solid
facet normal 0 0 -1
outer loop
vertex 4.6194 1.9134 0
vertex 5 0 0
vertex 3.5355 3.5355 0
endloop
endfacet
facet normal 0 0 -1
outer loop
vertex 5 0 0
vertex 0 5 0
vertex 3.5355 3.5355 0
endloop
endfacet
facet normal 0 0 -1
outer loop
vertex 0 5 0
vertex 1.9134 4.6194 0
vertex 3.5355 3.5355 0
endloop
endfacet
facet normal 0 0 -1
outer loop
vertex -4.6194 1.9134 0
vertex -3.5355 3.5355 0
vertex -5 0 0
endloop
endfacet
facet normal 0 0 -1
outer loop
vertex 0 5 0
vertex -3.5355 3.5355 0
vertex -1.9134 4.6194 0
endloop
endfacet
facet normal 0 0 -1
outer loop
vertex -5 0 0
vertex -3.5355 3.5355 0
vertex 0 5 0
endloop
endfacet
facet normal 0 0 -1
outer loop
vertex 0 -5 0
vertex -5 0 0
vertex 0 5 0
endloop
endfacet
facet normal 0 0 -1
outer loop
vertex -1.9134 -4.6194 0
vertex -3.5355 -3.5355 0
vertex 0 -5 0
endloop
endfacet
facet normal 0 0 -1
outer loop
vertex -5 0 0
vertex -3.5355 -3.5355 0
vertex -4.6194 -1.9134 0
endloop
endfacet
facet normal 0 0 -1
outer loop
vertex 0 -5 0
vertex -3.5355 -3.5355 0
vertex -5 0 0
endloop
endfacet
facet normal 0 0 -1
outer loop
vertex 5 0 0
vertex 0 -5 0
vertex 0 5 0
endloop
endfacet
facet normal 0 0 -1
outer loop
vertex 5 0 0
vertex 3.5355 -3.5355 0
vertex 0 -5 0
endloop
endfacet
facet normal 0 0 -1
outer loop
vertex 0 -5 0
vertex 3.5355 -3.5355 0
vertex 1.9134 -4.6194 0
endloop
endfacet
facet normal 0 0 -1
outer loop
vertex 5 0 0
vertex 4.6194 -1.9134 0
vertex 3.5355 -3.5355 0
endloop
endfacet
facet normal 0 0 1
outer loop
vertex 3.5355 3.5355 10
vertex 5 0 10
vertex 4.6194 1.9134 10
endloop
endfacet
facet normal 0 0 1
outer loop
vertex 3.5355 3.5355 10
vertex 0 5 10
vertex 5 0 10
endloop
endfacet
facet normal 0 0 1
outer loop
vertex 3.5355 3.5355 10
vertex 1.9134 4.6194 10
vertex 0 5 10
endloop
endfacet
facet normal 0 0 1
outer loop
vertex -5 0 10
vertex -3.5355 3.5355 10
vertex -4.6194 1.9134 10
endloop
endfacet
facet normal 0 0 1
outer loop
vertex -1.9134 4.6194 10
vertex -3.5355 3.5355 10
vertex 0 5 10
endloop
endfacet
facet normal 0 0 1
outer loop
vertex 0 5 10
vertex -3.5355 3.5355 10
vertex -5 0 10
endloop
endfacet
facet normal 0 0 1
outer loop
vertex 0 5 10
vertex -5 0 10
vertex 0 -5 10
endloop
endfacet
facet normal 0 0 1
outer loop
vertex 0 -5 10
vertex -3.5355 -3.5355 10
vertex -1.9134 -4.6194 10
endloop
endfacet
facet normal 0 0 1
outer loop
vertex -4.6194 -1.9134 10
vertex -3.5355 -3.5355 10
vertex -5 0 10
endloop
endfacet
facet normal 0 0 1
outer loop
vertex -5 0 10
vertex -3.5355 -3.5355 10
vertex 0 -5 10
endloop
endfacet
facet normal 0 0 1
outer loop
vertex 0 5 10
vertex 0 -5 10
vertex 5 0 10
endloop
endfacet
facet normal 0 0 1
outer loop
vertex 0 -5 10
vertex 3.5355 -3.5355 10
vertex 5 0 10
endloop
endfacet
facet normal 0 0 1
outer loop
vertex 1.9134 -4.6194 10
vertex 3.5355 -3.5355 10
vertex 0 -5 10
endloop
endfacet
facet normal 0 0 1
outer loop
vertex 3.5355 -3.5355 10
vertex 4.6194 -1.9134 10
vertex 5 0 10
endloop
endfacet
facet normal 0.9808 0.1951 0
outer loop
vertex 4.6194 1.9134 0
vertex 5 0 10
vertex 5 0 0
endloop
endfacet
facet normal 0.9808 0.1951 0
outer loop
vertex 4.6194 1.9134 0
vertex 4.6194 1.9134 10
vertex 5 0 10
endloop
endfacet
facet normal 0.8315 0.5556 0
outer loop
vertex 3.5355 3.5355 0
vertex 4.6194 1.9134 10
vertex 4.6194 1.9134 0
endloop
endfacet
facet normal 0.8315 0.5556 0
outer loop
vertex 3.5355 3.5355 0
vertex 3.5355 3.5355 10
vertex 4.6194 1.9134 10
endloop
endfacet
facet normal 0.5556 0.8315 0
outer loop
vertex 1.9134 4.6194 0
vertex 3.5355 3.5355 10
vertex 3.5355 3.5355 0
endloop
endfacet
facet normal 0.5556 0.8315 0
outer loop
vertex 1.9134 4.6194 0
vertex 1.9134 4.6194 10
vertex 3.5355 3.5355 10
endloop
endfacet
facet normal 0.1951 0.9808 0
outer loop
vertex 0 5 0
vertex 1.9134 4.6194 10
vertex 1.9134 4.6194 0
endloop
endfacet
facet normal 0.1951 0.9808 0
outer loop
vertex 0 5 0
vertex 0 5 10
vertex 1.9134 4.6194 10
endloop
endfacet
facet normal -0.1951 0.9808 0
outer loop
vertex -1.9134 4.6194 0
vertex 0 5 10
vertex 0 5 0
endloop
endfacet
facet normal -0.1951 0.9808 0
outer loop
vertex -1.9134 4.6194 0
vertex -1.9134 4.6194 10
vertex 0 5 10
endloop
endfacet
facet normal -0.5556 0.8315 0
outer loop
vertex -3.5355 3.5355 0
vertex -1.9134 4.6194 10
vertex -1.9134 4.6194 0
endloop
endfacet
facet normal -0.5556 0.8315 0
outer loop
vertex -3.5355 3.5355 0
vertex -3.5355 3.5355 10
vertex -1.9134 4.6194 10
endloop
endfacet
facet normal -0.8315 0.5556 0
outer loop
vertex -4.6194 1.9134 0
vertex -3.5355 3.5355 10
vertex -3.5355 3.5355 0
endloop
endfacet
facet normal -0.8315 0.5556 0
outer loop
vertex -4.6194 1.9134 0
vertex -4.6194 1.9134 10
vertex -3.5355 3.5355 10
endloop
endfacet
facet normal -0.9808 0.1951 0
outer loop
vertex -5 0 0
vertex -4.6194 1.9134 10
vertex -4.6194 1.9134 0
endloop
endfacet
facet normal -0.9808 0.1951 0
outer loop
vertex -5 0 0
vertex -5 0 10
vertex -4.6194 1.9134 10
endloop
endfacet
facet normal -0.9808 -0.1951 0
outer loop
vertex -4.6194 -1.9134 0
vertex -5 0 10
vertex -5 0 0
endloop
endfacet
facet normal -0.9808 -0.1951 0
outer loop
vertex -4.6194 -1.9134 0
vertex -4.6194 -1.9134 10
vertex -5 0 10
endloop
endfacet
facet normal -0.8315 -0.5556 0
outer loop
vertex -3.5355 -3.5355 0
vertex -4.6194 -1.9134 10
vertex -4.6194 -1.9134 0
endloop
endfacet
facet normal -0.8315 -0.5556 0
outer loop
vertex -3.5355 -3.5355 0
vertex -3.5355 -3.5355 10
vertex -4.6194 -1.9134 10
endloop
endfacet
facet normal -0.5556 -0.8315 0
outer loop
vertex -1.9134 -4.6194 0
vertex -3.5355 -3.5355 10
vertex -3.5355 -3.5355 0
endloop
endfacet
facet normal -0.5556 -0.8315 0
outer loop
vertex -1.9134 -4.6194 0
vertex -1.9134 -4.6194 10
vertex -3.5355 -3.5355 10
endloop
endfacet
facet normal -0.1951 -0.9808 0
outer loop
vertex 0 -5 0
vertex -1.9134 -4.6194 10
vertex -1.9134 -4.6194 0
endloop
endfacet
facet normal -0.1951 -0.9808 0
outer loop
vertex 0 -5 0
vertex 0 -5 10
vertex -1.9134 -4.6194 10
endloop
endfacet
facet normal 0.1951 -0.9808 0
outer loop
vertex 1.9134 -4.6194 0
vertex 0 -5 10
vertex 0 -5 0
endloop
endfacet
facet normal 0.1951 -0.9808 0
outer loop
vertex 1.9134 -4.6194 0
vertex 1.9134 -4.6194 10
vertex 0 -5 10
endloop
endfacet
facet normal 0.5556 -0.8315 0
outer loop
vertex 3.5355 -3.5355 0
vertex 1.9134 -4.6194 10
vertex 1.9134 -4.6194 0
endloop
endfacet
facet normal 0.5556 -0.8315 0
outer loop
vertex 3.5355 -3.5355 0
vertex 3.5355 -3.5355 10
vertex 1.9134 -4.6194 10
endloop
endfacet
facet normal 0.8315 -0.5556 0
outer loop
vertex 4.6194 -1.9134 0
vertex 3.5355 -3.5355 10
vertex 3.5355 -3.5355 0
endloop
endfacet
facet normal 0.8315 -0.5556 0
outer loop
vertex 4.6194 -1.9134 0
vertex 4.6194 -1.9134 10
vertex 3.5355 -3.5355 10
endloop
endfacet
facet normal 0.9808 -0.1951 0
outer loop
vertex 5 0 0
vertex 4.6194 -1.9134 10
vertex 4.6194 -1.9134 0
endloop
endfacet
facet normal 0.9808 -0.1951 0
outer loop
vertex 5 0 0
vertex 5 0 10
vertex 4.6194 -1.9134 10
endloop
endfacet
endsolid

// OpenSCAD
module cone(h, r1, r2) {
  linear_extrude(height = h, convexity = 10)
  circle(r = r1 - r2);
}

cone(h = 10, r1 = 5, r2 = 0);
